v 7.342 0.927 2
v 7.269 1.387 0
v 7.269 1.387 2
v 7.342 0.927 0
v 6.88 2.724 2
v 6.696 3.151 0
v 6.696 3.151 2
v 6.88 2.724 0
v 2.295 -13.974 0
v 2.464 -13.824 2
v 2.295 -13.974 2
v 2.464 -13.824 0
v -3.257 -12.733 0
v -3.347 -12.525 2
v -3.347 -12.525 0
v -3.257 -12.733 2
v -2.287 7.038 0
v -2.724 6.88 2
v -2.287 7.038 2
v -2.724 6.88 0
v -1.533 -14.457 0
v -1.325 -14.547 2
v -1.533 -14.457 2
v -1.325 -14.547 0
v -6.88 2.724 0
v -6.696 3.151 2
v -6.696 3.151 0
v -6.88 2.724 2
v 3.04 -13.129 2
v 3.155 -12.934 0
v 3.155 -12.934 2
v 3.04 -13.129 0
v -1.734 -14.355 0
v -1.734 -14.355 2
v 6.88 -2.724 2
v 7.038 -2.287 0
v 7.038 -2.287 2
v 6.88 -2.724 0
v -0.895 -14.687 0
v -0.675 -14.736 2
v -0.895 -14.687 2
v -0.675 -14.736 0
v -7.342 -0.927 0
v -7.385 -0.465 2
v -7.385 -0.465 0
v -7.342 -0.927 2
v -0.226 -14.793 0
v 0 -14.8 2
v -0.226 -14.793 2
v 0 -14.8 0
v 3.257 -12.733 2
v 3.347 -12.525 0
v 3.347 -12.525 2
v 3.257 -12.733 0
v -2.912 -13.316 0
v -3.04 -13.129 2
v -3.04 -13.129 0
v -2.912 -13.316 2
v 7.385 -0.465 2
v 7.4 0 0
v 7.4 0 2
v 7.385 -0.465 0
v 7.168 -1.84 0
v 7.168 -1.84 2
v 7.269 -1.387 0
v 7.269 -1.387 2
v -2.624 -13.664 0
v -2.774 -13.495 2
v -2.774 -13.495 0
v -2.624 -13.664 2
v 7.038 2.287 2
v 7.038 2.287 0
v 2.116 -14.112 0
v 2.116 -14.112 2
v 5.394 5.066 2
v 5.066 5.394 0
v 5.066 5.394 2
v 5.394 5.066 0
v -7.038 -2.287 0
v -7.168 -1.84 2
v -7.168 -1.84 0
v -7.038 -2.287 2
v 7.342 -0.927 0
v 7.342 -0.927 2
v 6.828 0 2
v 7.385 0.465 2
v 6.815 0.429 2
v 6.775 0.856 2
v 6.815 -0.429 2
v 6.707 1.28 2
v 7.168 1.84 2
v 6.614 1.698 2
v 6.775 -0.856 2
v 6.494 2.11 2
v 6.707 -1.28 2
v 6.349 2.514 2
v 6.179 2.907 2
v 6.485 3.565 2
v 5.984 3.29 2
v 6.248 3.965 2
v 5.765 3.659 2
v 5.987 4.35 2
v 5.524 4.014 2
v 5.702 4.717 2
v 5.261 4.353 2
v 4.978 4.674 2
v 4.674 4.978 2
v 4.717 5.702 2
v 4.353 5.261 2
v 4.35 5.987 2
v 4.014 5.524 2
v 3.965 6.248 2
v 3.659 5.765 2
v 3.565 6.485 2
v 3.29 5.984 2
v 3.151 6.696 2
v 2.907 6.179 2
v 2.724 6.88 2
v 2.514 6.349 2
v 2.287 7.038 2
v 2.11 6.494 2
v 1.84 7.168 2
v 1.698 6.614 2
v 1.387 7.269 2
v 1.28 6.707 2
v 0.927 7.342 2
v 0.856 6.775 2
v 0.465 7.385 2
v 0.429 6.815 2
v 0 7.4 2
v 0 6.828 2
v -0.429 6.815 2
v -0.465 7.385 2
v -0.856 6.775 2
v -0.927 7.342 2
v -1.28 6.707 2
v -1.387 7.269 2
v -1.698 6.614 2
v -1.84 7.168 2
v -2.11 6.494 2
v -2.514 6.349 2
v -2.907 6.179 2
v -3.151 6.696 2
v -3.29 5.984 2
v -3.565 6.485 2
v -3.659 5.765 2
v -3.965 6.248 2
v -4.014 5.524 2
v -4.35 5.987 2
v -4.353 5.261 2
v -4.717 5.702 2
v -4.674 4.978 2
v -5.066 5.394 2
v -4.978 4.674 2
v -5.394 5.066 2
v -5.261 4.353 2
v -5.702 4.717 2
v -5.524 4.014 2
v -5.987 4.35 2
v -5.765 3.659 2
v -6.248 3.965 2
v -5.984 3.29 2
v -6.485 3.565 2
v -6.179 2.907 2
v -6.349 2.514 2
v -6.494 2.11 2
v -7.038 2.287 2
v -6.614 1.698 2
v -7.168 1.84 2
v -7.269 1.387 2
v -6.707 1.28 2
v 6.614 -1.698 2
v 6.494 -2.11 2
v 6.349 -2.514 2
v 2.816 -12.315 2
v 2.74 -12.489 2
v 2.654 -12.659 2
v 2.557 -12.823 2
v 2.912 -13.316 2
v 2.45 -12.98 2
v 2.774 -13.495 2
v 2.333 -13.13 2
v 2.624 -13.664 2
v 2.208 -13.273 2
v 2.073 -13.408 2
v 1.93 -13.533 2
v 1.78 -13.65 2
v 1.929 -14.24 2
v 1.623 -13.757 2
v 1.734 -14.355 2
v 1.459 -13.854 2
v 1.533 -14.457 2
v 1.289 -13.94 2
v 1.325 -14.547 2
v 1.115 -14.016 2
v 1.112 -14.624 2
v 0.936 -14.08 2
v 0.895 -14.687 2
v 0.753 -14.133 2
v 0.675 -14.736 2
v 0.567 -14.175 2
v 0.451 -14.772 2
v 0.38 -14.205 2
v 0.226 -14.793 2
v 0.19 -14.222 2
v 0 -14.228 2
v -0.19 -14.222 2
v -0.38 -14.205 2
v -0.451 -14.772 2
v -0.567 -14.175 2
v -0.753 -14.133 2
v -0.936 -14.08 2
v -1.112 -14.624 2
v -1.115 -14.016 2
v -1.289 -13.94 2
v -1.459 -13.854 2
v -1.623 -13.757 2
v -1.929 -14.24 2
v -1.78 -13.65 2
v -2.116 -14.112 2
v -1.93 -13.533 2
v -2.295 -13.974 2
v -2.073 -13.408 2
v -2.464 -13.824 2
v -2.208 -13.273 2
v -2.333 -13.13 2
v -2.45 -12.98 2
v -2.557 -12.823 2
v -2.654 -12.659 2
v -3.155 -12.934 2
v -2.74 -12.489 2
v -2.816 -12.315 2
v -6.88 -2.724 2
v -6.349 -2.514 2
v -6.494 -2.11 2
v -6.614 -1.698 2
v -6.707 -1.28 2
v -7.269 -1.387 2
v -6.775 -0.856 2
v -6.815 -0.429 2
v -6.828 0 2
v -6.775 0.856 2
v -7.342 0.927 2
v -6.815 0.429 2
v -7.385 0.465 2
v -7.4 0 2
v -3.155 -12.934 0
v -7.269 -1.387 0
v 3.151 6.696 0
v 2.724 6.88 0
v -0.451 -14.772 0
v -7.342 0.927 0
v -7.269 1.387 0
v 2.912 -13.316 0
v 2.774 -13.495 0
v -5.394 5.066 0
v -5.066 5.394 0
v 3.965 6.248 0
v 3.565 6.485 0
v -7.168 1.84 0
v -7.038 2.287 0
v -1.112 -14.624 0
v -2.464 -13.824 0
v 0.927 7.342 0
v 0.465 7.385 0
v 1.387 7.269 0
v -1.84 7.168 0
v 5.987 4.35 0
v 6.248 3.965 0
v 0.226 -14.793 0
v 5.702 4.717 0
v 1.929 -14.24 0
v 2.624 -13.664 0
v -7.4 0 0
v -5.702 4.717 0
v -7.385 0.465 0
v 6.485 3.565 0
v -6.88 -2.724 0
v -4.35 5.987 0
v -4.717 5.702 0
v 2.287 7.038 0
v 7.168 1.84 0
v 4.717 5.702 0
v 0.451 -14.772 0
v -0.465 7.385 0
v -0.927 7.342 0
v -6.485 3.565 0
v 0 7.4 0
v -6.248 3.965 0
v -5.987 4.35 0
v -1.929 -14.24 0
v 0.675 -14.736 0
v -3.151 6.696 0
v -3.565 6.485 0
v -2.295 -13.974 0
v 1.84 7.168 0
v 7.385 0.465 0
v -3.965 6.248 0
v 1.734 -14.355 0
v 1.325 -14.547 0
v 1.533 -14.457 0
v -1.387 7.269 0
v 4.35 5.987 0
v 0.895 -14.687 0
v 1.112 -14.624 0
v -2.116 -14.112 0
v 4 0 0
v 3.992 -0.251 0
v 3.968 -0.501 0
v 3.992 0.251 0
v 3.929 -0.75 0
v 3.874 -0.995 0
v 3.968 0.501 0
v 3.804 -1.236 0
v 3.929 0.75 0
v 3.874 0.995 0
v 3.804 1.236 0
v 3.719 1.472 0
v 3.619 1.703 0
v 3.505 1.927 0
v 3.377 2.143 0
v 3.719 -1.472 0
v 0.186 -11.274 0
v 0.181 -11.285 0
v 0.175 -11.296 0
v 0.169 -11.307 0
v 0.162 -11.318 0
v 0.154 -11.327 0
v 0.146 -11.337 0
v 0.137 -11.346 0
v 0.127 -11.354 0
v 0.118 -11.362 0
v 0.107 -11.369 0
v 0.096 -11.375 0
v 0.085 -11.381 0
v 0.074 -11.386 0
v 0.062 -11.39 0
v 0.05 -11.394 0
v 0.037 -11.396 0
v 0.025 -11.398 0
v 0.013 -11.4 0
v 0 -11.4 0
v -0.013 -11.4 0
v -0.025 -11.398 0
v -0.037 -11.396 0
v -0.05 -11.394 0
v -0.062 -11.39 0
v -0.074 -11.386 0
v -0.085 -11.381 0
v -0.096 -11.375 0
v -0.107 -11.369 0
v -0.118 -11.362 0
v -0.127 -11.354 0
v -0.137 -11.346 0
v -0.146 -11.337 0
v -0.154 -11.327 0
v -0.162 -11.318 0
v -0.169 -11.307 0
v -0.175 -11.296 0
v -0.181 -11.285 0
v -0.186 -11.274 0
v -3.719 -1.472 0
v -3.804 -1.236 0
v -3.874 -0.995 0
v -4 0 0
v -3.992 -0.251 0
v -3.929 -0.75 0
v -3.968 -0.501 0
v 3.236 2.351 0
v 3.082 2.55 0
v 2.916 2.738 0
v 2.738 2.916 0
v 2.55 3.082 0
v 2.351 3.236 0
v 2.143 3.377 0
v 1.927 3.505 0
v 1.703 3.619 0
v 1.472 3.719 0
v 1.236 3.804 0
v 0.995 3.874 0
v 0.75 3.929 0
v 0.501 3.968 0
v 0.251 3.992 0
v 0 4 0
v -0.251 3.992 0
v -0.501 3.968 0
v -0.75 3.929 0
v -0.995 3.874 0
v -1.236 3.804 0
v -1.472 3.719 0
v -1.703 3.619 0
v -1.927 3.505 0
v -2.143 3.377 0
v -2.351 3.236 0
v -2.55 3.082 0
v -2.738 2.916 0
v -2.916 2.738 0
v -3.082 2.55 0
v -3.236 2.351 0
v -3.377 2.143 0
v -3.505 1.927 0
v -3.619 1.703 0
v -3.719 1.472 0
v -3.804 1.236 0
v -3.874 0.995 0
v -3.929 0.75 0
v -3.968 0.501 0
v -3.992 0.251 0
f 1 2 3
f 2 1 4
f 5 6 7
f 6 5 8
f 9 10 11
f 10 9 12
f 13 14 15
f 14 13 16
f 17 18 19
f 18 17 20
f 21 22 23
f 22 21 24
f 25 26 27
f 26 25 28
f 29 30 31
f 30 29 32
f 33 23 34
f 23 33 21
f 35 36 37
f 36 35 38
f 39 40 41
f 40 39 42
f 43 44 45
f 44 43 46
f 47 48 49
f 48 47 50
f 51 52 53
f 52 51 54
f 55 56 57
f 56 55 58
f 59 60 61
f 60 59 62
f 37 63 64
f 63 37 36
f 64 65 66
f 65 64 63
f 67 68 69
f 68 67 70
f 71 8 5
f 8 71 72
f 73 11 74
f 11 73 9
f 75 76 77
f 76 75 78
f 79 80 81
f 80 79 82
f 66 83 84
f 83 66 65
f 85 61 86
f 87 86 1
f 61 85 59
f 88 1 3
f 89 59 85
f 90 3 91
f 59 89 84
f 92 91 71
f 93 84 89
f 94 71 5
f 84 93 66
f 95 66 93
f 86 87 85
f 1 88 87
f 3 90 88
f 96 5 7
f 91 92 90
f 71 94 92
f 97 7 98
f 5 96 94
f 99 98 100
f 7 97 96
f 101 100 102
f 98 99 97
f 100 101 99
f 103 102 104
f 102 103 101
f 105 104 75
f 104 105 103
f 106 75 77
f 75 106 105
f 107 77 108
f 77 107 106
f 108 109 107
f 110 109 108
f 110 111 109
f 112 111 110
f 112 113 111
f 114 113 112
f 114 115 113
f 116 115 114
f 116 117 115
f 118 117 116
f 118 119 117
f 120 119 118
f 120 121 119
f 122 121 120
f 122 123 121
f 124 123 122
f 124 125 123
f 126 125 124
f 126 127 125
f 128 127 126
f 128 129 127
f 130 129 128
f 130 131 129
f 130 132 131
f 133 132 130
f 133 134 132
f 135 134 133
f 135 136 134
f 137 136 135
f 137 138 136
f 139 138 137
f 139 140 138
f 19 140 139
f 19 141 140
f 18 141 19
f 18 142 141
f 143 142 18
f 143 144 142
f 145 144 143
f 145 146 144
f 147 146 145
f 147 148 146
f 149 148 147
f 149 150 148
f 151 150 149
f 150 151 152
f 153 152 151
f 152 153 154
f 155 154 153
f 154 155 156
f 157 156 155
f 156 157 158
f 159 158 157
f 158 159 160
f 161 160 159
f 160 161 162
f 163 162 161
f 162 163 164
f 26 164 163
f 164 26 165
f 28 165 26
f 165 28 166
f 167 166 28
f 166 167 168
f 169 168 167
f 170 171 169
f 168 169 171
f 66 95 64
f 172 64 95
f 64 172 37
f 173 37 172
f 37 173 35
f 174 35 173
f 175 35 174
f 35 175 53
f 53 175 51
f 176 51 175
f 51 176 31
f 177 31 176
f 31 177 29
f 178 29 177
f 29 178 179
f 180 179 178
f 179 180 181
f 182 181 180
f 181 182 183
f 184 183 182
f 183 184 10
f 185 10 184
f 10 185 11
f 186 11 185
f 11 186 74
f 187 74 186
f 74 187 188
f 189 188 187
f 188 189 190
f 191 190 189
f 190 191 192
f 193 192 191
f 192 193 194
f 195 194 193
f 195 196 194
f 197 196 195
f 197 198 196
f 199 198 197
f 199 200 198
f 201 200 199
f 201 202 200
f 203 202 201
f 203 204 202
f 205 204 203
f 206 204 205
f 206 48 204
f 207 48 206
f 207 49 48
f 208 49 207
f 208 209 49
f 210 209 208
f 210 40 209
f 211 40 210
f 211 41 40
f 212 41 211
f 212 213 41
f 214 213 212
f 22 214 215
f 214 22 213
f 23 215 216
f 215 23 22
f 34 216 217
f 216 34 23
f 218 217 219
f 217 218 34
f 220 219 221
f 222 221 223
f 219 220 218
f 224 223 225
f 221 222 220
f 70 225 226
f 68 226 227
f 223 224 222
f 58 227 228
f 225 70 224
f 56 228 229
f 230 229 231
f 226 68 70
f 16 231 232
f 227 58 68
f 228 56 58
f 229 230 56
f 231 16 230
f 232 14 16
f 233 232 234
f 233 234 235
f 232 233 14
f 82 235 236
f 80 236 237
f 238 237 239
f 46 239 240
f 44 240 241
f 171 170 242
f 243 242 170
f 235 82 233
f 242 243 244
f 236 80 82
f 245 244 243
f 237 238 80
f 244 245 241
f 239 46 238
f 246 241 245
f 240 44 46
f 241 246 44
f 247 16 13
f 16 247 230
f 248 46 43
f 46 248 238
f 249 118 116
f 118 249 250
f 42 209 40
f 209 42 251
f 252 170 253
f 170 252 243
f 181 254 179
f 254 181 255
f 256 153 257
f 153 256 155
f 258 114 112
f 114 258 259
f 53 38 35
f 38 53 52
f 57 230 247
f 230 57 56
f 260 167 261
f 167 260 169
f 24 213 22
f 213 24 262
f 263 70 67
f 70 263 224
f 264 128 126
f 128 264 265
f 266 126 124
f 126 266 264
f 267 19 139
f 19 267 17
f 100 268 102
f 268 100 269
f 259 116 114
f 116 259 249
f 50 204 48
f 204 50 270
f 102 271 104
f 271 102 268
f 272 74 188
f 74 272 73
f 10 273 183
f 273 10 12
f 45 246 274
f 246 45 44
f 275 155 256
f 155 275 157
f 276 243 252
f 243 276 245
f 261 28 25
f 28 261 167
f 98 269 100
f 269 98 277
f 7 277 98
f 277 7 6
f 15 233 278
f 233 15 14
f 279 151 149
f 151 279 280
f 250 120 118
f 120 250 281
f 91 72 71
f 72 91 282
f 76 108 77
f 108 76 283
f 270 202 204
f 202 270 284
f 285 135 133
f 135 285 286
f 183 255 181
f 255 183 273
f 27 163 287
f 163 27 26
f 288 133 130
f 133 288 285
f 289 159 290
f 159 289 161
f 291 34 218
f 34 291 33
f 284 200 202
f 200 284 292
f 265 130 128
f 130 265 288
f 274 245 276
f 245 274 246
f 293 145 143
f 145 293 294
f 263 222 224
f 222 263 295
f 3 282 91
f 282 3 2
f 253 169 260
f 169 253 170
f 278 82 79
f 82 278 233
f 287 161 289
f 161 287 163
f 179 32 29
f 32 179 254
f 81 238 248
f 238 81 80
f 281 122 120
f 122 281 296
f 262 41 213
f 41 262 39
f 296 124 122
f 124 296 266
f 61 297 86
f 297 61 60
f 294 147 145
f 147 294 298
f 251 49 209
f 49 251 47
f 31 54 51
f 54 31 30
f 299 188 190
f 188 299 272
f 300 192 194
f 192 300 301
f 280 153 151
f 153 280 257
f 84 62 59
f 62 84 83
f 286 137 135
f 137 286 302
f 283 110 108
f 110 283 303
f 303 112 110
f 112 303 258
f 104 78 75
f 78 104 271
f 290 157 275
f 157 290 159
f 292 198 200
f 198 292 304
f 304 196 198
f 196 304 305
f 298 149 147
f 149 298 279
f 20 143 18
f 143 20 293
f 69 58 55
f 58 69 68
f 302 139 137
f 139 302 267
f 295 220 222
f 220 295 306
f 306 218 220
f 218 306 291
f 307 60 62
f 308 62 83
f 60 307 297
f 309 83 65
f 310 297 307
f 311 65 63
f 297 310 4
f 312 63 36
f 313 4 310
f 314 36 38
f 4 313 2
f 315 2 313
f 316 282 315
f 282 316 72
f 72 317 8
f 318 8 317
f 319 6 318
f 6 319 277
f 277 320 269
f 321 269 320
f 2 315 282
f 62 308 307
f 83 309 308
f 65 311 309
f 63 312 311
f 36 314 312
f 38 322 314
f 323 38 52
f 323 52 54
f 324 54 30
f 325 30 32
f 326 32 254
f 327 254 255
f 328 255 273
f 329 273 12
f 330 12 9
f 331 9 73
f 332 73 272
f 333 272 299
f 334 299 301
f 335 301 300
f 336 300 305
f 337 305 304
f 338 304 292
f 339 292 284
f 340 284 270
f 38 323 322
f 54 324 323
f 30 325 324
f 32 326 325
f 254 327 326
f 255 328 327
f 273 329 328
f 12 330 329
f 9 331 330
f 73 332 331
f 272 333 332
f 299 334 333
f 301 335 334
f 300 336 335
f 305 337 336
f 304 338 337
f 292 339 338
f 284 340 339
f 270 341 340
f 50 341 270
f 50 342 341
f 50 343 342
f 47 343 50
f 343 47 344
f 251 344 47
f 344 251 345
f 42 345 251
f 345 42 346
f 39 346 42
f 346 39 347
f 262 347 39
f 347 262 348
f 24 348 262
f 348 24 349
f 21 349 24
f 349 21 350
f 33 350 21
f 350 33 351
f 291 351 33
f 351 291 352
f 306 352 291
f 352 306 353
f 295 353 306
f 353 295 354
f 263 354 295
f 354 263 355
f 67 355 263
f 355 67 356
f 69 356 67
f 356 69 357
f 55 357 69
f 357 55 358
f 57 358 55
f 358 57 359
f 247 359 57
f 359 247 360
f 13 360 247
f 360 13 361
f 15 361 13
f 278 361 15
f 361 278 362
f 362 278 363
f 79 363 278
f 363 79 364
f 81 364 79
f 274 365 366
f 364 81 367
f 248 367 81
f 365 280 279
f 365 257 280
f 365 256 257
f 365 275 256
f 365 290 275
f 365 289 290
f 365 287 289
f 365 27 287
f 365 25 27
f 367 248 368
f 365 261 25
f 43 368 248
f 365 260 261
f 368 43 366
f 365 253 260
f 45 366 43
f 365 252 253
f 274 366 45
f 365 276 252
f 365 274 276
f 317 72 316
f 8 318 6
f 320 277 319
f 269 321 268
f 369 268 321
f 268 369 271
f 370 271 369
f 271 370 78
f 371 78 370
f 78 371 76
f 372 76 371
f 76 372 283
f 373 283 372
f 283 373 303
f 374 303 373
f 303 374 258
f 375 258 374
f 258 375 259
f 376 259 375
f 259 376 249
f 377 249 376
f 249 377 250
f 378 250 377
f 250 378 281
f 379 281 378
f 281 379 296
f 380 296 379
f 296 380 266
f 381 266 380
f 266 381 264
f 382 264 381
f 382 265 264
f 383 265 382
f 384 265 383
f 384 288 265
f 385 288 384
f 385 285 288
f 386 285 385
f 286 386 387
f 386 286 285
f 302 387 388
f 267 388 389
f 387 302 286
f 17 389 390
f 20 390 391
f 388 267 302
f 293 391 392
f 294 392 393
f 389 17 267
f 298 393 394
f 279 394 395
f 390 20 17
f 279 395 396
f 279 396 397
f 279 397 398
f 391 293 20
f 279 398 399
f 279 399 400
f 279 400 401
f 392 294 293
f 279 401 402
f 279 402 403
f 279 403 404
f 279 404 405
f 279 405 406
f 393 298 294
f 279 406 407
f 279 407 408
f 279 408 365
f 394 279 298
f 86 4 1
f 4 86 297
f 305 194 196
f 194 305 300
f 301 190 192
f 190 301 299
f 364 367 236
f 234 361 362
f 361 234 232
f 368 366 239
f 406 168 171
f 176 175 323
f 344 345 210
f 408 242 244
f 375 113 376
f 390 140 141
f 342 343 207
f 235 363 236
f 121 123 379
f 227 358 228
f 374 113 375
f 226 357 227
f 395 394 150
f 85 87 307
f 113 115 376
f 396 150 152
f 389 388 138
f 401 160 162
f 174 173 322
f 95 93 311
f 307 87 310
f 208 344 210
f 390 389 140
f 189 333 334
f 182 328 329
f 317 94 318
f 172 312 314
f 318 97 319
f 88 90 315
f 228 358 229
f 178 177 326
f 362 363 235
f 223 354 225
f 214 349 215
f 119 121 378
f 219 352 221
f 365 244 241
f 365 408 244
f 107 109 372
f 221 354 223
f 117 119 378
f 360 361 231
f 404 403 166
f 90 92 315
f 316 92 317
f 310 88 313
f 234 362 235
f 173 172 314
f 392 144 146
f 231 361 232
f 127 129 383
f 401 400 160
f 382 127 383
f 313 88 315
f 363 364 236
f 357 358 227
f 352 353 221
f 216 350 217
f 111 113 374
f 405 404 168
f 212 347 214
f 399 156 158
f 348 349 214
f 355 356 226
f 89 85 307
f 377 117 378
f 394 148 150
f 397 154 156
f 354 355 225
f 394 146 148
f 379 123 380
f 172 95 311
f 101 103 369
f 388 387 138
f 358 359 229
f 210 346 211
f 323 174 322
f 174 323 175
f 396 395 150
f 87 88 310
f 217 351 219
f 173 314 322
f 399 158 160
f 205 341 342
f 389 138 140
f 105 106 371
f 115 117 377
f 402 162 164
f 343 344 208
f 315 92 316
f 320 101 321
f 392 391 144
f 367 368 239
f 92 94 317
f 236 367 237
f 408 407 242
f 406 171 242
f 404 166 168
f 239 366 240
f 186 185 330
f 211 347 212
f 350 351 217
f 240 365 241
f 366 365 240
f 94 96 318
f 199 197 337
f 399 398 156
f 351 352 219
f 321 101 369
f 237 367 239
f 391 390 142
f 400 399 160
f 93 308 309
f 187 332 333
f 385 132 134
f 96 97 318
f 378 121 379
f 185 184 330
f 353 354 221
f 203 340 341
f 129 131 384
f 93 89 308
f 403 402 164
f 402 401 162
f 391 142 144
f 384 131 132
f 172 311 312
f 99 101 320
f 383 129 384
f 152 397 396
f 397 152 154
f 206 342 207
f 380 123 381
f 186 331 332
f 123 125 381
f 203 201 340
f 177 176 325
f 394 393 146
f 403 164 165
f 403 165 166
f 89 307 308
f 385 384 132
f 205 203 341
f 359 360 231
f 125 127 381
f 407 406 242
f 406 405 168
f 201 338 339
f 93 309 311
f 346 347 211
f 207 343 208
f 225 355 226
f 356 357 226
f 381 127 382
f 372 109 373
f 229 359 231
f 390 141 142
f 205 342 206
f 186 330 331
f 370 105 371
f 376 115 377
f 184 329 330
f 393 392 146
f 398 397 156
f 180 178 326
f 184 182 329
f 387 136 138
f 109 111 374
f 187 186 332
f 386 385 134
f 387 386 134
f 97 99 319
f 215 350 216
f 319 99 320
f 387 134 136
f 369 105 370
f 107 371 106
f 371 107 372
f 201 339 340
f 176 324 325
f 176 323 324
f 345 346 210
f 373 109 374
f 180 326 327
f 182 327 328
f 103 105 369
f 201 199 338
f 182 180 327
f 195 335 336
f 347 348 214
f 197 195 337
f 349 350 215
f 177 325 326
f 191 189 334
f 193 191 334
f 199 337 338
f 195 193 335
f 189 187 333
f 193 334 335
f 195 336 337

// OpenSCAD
$fn=100;
T=2;
D=8;
N=8;
H=0.3+0.2*N;
dD=sqrt(2*2*2);

difference(){
    h=D*1.4;
    r=D/2+3.4;
    r1=0.2+3.4;
    hull(){
        cylinder(2, r=r);
        translate([0,-h,0])
            cylinder(2,r=r1);
    }
    hull(){
        cylinder(2, D/2, D/2+dD);
        translate([0,-h,0])
            cylinder(2, 0.2, 0.2+dD);
    }
}
